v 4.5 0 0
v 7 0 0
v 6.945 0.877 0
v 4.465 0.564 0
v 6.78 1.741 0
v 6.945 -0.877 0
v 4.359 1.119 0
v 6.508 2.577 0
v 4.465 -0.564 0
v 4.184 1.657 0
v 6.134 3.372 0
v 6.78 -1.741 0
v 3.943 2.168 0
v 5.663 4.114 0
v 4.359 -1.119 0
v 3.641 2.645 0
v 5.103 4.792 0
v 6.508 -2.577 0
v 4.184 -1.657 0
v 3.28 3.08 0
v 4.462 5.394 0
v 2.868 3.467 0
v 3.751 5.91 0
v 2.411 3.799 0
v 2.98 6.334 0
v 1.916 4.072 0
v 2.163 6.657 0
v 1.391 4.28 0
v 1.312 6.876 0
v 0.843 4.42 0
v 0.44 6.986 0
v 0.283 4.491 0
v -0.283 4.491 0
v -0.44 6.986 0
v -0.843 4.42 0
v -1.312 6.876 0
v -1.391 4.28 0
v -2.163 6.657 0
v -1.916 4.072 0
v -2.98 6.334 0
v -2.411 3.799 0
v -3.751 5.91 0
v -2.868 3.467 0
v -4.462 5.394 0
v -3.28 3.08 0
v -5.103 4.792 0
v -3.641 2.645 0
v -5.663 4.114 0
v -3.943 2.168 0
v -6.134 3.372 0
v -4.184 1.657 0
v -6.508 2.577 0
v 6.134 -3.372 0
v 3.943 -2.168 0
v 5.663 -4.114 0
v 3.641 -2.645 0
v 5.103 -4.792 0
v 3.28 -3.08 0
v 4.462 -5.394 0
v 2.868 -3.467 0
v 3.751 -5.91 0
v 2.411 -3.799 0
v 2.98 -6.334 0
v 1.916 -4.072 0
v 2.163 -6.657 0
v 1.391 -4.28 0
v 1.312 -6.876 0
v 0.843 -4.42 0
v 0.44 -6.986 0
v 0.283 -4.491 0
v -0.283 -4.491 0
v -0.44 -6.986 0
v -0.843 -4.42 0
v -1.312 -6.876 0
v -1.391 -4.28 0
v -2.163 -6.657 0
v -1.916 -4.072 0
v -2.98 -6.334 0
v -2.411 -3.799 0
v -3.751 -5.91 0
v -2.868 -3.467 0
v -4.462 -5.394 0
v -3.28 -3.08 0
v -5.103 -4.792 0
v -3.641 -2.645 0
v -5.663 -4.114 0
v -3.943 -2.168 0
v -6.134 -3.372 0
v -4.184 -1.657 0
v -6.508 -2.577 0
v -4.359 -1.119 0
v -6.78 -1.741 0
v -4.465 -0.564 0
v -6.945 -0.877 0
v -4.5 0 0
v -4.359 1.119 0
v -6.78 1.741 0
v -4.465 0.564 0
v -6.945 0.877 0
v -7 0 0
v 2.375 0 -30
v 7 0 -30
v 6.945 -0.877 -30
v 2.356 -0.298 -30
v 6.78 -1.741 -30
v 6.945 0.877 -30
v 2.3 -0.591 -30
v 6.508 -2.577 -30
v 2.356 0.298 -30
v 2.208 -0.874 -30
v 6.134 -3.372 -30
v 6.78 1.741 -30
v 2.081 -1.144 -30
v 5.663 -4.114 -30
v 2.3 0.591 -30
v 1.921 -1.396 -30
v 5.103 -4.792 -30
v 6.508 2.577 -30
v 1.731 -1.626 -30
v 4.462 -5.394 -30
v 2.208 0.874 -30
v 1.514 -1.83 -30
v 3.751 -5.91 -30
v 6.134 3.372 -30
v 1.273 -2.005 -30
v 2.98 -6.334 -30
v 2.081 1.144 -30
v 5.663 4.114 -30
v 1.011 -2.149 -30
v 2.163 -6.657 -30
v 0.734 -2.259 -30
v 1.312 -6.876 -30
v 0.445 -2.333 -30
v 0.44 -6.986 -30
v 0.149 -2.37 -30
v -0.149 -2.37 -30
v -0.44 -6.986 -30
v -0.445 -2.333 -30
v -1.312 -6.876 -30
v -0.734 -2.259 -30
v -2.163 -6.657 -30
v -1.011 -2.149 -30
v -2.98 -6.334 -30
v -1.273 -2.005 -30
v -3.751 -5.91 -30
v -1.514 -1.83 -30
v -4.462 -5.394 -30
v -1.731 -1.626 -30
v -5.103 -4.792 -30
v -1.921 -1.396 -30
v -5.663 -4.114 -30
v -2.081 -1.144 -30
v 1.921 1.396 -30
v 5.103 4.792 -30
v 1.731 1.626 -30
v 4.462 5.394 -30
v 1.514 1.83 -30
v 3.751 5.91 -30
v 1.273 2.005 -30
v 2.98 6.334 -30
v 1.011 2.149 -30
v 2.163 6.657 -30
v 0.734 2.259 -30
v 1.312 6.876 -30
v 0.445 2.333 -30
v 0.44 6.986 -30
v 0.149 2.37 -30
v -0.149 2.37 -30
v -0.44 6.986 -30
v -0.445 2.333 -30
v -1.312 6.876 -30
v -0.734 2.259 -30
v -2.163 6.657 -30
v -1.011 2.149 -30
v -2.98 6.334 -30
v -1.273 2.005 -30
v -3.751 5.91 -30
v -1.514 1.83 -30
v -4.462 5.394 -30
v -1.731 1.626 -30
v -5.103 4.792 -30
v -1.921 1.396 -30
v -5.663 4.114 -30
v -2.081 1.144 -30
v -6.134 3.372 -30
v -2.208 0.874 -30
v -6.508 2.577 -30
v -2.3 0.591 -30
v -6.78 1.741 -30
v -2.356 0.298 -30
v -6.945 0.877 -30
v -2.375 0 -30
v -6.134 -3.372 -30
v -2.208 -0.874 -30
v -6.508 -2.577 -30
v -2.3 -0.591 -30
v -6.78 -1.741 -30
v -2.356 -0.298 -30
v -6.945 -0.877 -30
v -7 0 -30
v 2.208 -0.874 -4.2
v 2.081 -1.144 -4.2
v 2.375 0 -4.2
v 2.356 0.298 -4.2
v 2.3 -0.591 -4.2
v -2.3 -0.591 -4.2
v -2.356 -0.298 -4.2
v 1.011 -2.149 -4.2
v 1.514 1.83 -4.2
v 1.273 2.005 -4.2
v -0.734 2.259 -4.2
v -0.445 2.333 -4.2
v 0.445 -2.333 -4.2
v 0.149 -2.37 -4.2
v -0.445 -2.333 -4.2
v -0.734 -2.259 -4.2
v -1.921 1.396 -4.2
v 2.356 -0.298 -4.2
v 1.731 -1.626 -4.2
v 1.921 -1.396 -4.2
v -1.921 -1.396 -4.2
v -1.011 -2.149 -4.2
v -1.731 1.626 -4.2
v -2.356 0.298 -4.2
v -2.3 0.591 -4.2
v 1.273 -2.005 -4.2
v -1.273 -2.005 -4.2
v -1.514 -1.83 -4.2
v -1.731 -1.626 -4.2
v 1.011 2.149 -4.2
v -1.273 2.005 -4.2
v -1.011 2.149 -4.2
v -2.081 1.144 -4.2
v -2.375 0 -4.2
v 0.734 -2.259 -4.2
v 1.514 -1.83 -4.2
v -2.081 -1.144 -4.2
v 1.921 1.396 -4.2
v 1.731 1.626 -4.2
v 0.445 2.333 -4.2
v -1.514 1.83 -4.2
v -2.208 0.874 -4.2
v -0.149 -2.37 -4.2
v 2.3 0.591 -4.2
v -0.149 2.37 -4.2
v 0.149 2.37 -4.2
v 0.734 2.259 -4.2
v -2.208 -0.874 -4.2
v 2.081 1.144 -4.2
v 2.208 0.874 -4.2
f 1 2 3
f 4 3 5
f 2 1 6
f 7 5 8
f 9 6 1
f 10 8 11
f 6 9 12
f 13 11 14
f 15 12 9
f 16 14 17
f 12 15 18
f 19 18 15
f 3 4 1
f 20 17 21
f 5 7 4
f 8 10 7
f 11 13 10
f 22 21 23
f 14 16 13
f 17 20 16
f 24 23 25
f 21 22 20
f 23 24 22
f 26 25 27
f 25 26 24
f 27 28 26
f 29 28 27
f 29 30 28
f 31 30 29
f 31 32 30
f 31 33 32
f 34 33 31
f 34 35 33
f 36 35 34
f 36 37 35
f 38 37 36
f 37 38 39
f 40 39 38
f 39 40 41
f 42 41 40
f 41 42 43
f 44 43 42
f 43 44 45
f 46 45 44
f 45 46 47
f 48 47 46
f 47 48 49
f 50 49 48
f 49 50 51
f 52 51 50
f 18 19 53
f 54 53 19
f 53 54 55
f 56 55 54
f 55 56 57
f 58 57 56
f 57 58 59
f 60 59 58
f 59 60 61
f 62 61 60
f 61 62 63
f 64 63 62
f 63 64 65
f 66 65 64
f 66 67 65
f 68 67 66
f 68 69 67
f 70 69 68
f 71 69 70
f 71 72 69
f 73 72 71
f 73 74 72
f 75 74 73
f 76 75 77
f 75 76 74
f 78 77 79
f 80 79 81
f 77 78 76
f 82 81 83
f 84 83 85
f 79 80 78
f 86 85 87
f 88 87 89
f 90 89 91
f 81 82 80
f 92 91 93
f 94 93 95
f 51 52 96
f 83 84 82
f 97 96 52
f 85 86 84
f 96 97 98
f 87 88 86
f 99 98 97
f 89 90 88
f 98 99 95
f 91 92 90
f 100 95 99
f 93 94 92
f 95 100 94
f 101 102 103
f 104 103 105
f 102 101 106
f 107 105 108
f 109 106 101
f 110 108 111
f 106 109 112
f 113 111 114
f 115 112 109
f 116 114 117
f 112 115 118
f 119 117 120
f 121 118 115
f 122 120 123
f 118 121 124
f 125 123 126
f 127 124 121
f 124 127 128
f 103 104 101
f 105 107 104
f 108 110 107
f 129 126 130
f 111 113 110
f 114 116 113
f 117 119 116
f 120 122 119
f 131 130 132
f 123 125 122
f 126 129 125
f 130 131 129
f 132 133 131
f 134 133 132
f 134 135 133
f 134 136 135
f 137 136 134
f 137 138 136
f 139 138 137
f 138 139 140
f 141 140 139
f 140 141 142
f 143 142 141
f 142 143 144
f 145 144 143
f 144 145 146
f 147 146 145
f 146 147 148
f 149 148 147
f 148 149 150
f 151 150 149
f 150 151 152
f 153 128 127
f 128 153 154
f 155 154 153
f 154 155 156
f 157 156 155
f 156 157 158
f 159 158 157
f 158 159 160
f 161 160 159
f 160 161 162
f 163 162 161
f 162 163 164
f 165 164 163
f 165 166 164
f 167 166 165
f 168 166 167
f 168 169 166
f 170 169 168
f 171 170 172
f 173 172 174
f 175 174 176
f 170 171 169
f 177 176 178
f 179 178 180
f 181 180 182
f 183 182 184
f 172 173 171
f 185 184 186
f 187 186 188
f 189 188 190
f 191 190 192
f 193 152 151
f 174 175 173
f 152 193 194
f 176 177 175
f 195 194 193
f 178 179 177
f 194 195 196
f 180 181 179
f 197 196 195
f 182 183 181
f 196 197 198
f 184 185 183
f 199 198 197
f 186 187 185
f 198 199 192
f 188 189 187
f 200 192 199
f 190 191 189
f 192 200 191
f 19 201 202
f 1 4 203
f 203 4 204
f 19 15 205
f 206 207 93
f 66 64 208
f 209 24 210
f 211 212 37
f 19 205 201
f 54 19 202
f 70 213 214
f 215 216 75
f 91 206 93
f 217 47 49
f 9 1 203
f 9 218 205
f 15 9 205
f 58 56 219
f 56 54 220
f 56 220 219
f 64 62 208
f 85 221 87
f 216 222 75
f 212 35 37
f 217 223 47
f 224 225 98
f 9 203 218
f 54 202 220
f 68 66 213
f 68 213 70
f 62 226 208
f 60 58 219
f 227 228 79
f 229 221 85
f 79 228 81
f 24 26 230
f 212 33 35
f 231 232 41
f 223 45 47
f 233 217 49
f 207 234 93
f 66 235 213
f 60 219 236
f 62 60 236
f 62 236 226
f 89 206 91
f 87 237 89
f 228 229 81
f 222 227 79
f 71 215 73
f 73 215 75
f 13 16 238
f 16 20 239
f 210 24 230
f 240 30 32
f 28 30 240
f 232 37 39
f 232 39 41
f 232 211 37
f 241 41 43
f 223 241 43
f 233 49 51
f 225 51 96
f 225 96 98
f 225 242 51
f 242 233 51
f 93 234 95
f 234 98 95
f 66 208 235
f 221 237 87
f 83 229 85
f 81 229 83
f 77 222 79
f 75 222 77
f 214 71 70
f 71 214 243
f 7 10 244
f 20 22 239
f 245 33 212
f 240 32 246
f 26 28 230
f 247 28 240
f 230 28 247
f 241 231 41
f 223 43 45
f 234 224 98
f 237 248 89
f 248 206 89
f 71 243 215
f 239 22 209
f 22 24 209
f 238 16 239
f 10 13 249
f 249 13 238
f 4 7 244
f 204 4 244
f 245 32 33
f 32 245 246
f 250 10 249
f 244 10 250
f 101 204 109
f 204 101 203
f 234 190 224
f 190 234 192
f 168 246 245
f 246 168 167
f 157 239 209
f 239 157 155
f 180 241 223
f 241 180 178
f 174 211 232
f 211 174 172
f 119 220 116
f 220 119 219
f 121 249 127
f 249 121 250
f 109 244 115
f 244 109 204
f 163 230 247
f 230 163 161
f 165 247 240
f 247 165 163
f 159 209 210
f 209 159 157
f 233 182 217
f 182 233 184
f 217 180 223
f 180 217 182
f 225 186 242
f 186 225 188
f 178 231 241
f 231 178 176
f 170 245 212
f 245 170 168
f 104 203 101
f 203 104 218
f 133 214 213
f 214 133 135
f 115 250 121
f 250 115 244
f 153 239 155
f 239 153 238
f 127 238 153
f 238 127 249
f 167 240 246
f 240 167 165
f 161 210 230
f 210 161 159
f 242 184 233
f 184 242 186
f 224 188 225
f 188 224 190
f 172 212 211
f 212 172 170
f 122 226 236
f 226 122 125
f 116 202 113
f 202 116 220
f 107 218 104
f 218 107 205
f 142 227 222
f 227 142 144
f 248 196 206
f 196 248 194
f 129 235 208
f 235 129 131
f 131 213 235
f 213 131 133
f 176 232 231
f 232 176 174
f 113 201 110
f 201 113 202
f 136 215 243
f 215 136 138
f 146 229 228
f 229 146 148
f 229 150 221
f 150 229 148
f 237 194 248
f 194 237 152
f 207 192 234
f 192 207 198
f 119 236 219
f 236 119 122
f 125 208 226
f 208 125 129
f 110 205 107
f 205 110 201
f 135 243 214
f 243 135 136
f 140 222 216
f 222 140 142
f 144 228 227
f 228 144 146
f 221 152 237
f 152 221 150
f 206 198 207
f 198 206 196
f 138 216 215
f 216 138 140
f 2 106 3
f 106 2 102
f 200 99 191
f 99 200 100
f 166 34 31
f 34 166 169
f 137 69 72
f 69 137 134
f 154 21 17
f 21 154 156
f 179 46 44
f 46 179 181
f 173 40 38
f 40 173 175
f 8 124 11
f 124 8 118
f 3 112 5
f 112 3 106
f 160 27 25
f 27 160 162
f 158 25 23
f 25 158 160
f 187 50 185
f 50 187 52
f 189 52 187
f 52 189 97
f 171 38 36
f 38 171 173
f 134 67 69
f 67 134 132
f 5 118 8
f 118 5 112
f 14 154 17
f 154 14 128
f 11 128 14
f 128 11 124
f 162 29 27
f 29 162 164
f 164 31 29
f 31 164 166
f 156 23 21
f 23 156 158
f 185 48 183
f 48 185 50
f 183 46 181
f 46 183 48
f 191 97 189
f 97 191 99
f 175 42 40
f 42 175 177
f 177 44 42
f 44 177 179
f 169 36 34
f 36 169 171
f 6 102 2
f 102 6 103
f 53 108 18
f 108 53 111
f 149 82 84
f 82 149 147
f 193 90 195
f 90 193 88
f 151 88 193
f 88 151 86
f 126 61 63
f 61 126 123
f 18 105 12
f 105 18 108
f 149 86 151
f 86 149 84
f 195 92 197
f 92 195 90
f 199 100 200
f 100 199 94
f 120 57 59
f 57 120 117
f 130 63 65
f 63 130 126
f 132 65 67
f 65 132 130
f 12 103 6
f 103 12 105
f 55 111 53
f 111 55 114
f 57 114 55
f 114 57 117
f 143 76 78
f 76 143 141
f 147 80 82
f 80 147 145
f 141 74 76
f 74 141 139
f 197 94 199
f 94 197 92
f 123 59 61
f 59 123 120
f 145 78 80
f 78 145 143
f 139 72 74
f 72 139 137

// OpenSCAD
$fn = 50;


difference() {
	union() {
		translate(v = [0, 0, -30.0000000000]) {
			cylinder(h = 30, r = 7.0000000000);
		}
		cylinder(h = 0, r = 10.0000000000);
	}
	union() {
		translate(v = [0, 0, 0]) {
			rotate(a = [0, 0, 0]) {
				difference() {
					union() {
						#translate(v = [0, 0, -30.0000000000]) {
							cylinder(h = 30, r = 2.2500000000);
						}
						#translate(v = [0, 0, -4.2000000000]) {
							cylinder(h = 4.2000000000, r1 = 2.3750000000, r2 = 4.5000000000);
						}
						#translate(v = [0, 0, -30.0000000000]) {
							cylinder(h = 30, r = 2.3750000000);
						}
						#translate(v = [0, 0, -30.0000000000]) {
							cylinder(h = 30, r = 2.2500000000);
						}
					}
					union();
				}
			}
		}
	}
}
